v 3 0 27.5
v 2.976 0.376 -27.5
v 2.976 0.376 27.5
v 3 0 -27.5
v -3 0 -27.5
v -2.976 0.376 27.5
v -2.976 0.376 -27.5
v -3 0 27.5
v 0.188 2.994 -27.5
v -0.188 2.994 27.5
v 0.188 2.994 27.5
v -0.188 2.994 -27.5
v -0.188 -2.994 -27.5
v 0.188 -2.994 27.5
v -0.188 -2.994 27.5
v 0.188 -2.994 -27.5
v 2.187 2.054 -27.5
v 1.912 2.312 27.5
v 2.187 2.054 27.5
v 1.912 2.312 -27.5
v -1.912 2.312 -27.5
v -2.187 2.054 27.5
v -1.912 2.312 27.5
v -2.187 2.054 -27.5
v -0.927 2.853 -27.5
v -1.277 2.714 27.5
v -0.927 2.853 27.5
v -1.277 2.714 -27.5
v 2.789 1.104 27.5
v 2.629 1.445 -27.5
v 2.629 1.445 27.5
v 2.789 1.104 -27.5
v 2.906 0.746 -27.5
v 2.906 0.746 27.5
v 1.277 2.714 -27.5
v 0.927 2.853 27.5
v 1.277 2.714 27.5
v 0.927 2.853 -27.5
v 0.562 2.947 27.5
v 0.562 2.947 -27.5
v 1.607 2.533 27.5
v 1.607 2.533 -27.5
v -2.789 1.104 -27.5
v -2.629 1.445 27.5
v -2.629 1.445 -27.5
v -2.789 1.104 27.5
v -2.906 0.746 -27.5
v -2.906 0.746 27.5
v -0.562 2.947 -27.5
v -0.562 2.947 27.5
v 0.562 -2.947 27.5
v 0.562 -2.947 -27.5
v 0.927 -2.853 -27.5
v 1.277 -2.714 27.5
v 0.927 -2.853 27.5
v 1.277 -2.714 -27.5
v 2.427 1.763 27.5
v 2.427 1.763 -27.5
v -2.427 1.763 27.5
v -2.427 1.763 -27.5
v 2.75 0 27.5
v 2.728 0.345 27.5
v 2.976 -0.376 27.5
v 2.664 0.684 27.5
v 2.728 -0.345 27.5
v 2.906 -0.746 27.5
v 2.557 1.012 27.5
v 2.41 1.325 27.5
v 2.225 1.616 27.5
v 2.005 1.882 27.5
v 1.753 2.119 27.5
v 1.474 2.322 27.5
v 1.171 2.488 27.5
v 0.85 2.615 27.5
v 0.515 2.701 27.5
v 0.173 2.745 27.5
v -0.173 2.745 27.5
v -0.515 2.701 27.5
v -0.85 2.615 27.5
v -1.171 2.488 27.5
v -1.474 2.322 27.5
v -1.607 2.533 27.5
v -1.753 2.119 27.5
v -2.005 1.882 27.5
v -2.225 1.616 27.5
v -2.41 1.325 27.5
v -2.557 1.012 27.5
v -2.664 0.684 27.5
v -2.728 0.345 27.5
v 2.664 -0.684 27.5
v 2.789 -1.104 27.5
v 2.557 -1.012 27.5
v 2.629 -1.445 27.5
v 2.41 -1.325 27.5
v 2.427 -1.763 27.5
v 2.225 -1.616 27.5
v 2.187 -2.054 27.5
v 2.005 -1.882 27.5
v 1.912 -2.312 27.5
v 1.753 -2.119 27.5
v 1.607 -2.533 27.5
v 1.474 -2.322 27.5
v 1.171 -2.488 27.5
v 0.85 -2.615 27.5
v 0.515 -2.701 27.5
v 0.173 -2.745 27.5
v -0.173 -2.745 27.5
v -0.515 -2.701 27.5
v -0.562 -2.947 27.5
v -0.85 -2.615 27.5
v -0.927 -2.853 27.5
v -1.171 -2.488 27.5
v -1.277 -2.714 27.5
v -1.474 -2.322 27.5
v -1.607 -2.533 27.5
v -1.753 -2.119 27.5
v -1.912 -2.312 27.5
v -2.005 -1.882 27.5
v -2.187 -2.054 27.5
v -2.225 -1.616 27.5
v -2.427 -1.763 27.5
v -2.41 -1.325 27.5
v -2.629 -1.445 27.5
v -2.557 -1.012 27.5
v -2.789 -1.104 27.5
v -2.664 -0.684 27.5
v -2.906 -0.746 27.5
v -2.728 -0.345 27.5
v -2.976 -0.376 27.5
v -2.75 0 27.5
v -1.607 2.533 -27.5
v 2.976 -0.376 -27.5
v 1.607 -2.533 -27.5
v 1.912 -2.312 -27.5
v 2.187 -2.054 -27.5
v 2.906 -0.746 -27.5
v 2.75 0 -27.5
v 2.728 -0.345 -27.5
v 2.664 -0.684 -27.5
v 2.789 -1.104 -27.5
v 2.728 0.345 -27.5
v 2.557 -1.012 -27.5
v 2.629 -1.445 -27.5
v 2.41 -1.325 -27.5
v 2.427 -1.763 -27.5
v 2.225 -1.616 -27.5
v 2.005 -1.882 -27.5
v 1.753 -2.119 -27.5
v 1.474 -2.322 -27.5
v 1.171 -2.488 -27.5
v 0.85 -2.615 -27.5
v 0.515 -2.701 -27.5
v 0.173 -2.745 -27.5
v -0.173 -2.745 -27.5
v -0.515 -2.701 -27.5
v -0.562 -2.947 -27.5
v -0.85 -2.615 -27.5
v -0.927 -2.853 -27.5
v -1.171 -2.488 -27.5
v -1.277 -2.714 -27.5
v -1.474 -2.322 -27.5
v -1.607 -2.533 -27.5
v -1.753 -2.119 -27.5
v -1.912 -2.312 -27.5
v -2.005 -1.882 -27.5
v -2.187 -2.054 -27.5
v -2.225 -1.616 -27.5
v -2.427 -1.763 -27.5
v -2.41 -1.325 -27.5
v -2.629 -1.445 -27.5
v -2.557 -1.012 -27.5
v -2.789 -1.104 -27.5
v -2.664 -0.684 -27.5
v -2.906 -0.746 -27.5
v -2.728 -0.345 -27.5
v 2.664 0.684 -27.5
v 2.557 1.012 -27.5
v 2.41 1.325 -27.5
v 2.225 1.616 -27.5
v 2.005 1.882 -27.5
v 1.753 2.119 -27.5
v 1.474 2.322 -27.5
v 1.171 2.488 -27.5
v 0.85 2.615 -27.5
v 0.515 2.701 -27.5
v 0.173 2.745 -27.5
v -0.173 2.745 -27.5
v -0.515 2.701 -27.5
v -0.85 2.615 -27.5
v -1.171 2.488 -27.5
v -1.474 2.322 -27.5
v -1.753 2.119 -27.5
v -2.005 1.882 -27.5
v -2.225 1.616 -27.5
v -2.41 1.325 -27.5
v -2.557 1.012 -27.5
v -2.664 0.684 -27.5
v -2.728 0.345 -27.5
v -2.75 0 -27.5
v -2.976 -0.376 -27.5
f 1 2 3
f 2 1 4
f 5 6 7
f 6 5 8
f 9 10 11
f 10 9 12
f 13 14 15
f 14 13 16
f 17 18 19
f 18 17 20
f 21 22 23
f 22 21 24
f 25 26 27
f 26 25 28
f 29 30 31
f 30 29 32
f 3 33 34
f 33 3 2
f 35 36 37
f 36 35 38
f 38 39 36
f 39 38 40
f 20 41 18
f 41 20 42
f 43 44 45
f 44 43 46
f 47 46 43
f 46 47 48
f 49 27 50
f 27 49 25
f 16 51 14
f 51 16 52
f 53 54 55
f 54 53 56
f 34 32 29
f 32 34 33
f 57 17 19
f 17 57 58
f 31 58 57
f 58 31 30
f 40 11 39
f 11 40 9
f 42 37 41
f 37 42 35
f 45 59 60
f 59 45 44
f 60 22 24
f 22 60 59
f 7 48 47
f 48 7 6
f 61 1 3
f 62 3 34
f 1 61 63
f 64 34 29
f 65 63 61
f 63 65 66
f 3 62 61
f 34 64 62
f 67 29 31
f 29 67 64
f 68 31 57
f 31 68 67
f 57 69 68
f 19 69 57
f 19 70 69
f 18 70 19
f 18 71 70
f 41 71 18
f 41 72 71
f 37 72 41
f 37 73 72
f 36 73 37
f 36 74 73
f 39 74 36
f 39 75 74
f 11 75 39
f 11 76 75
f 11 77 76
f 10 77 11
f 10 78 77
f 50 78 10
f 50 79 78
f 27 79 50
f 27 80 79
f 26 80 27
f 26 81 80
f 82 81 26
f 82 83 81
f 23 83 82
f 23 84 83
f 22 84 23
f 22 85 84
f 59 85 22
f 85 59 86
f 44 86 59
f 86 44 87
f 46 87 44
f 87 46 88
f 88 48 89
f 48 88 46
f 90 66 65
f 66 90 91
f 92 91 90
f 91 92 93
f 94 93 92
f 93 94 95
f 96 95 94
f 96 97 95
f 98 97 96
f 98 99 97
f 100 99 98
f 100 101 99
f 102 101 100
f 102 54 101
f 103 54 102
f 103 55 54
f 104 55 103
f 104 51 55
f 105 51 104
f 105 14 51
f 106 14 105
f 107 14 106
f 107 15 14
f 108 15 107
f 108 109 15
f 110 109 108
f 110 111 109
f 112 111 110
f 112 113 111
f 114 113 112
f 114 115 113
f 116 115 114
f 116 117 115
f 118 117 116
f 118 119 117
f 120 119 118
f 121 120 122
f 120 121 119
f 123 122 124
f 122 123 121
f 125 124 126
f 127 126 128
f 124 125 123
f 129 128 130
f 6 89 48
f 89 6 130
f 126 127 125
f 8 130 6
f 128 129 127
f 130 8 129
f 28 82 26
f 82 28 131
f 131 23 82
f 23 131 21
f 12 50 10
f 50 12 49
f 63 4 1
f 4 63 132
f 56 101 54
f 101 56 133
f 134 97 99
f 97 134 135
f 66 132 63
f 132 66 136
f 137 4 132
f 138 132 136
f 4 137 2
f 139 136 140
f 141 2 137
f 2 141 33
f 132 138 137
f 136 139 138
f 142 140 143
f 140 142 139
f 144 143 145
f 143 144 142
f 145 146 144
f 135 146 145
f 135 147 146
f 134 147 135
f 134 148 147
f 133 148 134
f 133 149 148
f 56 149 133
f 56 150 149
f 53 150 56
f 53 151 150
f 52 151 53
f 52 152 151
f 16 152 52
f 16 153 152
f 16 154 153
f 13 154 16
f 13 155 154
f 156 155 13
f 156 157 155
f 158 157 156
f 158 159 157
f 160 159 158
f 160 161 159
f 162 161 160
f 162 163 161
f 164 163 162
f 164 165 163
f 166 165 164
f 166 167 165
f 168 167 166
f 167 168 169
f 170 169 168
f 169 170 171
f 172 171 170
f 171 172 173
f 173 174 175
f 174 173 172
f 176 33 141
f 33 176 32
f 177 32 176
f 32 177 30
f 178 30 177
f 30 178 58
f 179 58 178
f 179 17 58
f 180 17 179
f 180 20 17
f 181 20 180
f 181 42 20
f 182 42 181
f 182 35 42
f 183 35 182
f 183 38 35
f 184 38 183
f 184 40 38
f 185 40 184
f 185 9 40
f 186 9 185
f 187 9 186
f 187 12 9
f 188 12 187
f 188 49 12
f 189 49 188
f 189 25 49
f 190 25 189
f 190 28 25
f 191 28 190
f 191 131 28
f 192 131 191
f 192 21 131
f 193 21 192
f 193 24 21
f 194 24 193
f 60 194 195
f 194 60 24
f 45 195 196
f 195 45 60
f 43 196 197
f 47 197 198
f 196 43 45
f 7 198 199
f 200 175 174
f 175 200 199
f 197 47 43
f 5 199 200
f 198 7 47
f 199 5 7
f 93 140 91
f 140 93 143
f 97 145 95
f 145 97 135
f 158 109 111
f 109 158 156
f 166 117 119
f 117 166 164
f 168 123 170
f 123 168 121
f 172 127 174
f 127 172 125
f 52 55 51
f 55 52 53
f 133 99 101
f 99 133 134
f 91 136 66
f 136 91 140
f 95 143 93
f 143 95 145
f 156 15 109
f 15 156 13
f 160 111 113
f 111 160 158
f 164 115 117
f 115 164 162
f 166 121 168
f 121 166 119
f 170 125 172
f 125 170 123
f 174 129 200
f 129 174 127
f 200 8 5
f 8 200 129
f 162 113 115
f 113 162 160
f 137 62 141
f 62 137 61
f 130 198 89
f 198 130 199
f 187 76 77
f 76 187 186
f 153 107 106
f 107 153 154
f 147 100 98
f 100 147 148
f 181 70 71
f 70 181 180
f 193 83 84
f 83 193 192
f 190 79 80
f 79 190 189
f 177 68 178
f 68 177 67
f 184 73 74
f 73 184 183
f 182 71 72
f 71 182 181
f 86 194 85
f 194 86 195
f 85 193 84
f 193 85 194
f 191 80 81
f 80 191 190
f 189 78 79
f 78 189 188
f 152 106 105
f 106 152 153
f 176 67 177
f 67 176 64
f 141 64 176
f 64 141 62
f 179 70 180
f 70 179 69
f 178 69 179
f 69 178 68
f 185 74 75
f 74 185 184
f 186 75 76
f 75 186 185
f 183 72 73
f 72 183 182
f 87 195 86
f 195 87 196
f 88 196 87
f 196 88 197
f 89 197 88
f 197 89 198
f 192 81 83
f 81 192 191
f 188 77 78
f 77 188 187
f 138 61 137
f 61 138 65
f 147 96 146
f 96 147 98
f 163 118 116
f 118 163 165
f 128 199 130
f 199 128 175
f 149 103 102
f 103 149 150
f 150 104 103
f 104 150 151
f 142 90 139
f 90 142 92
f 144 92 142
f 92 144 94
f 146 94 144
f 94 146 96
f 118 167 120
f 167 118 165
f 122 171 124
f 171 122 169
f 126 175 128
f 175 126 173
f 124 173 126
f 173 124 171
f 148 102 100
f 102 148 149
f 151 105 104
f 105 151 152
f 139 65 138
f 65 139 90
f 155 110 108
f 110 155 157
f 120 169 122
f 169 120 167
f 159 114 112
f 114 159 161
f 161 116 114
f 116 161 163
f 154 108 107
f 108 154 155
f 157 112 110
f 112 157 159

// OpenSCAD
$fn = 50;


difference() {
	union() {
		translate(v = [0, 0, -27.5000000000]) {
			cylinder(h = 55, r = 3.0000000000);
		}
	}
	union() {
		translate(v = [0, 0, -100.0000000000]) {
			cylinder(h = 200, r = 2.7500000000);
		}
	}
}
